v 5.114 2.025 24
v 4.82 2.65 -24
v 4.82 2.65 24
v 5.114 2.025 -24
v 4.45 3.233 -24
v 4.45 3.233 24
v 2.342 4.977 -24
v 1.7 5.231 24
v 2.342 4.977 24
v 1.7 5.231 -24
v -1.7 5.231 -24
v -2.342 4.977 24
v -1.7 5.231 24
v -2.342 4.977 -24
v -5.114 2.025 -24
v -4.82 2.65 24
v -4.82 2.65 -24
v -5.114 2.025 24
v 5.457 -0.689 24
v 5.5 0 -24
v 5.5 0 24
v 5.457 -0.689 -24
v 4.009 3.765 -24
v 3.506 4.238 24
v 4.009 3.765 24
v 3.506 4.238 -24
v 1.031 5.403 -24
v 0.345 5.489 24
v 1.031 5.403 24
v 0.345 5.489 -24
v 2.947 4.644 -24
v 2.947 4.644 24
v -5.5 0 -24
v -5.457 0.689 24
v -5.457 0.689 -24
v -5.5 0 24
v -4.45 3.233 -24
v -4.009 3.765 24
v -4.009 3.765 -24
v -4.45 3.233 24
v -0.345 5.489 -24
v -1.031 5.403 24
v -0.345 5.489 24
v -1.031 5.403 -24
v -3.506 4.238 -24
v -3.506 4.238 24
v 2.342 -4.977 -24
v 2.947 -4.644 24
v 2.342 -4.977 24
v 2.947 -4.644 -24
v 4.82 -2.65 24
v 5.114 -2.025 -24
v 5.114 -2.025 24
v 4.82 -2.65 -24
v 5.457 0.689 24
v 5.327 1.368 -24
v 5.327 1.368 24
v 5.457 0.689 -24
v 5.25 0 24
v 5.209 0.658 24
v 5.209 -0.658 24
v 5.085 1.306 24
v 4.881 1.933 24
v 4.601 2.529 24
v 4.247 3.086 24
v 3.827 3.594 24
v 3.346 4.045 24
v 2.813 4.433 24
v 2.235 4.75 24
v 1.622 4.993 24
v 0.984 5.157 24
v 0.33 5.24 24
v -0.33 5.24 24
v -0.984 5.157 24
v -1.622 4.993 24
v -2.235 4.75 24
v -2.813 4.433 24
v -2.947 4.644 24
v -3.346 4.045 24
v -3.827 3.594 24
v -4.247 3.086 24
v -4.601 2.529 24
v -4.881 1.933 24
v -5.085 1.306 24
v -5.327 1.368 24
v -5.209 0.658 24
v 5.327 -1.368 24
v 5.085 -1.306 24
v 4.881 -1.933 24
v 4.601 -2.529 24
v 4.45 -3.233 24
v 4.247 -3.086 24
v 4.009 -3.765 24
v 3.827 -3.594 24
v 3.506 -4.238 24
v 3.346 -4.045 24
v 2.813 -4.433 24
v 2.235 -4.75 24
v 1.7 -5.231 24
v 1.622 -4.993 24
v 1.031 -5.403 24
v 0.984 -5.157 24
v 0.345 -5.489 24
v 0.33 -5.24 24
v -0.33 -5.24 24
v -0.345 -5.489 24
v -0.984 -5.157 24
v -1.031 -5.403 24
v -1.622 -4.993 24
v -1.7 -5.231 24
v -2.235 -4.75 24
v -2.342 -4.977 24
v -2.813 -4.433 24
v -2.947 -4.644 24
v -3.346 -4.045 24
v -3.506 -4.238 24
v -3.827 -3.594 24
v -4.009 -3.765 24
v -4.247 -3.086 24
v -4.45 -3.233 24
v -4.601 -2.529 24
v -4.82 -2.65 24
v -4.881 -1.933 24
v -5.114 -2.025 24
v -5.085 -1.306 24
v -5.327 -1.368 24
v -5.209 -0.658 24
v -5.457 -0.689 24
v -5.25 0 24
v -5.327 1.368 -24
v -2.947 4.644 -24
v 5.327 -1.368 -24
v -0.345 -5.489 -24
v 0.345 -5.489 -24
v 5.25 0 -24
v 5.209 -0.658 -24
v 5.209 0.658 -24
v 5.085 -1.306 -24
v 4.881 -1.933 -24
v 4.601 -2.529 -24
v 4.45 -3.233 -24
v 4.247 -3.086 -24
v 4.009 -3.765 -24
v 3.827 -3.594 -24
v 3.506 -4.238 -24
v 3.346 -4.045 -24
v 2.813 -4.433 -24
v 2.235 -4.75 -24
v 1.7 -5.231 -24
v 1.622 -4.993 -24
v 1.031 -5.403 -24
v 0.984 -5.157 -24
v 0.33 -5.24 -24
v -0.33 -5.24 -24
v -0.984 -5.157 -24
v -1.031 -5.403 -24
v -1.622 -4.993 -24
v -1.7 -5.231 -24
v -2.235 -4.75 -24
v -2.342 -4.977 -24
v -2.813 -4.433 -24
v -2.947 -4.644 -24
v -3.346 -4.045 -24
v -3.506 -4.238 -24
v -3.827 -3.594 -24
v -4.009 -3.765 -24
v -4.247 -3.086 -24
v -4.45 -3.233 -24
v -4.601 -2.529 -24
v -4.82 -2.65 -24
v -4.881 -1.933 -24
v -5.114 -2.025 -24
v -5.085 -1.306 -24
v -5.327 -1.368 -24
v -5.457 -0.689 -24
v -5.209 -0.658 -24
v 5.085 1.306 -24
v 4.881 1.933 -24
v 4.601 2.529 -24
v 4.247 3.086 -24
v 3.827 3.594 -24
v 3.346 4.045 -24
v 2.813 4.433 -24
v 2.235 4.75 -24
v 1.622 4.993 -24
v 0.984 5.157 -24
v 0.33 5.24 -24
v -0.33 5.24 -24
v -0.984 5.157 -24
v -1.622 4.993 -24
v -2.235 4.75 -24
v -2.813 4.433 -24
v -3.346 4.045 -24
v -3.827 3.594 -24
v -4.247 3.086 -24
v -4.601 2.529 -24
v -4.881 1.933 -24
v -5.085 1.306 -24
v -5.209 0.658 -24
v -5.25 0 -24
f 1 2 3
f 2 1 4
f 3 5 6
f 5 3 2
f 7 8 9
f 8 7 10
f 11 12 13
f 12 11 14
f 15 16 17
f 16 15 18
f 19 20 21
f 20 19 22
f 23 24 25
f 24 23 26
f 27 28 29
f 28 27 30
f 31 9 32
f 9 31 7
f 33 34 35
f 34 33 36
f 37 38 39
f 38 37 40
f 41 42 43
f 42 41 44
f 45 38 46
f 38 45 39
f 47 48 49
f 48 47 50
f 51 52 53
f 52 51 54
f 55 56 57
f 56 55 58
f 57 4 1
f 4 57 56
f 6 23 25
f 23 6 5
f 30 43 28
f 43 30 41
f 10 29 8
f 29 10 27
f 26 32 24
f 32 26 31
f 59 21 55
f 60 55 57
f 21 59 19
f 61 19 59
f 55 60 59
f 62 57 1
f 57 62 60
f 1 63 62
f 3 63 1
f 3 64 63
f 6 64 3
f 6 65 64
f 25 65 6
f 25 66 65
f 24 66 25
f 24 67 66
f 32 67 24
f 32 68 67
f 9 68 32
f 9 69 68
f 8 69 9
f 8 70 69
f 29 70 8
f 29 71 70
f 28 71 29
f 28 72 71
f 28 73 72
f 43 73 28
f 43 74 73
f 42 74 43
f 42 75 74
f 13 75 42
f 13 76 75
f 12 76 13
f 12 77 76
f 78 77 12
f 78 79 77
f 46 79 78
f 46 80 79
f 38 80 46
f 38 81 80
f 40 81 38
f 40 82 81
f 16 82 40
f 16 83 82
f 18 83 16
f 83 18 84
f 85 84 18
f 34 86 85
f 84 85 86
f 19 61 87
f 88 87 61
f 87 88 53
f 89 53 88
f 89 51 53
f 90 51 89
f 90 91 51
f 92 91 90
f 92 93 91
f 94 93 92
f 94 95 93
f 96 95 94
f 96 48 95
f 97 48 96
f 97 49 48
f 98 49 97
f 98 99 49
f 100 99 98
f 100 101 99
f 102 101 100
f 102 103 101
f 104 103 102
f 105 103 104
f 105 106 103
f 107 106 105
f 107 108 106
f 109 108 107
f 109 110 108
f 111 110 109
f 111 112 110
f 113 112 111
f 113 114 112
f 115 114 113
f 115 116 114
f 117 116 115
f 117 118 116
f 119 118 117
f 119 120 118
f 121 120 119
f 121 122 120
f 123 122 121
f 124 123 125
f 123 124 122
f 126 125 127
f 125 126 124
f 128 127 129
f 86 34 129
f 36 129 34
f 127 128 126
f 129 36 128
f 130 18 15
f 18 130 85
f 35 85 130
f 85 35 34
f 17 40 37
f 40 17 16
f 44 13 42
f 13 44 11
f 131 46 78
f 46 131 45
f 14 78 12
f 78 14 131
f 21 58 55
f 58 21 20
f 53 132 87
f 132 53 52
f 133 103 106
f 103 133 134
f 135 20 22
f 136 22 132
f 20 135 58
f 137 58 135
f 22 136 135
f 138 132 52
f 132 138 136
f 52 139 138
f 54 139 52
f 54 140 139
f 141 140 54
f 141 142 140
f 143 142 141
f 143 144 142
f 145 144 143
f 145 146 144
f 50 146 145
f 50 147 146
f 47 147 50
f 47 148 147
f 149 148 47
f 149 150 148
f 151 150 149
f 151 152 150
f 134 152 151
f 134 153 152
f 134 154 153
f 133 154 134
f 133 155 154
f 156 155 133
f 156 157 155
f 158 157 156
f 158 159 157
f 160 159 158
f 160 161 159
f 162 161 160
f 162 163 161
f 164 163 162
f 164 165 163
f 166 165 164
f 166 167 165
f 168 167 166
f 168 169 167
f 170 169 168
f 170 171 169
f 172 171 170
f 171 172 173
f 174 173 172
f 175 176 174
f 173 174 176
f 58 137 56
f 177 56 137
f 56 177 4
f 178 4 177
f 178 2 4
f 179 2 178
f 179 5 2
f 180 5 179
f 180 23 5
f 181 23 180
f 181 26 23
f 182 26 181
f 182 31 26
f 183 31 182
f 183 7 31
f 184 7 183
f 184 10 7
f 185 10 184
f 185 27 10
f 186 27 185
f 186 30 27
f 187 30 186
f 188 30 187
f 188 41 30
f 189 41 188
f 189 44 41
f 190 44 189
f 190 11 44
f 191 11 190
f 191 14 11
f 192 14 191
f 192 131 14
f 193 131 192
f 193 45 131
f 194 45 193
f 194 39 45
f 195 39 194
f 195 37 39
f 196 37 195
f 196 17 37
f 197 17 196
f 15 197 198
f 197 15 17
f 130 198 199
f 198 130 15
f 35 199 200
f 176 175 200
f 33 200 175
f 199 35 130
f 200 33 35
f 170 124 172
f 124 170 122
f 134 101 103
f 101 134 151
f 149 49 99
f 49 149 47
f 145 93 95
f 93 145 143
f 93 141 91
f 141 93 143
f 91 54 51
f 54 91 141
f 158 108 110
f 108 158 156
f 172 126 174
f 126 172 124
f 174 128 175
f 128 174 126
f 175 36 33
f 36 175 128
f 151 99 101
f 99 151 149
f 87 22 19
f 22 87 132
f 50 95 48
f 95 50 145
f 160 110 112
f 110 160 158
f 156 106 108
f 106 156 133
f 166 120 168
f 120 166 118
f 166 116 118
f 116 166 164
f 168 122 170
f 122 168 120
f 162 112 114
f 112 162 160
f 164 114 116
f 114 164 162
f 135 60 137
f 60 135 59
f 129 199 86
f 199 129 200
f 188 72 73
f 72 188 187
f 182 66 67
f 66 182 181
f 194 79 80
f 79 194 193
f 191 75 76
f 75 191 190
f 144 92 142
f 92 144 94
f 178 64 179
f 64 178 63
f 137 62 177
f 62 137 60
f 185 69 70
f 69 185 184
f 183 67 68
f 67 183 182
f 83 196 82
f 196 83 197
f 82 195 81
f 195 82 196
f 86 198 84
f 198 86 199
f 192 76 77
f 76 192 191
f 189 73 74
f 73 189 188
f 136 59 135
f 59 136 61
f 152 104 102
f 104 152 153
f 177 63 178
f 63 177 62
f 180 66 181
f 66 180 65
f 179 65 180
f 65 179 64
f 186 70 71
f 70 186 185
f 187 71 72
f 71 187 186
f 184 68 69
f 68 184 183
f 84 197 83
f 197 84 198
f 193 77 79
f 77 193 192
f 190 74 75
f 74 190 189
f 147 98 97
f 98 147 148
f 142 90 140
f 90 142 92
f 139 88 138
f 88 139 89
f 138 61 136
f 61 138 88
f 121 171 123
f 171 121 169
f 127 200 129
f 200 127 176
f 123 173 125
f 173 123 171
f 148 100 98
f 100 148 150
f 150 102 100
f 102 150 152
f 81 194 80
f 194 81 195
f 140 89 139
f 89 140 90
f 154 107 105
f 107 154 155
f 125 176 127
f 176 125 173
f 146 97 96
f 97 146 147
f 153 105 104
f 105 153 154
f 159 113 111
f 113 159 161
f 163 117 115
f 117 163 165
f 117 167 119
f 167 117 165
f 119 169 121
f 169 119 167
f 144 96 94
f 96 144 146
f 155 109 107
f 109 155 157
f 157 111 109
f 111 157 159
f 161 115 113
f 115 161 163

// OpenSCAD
$fn = 50;


difference() {
	union() {
		translate(v = [0, 0, -24.0000000000]) {
			cylinder(h = 48, r = 5.5000000000);
		}
	}
	union() {
		translate(v = [0, 0, -100.0000000000]) {
			cylinder(h = 200, r = 5.2500000000);
		}
	}
}
